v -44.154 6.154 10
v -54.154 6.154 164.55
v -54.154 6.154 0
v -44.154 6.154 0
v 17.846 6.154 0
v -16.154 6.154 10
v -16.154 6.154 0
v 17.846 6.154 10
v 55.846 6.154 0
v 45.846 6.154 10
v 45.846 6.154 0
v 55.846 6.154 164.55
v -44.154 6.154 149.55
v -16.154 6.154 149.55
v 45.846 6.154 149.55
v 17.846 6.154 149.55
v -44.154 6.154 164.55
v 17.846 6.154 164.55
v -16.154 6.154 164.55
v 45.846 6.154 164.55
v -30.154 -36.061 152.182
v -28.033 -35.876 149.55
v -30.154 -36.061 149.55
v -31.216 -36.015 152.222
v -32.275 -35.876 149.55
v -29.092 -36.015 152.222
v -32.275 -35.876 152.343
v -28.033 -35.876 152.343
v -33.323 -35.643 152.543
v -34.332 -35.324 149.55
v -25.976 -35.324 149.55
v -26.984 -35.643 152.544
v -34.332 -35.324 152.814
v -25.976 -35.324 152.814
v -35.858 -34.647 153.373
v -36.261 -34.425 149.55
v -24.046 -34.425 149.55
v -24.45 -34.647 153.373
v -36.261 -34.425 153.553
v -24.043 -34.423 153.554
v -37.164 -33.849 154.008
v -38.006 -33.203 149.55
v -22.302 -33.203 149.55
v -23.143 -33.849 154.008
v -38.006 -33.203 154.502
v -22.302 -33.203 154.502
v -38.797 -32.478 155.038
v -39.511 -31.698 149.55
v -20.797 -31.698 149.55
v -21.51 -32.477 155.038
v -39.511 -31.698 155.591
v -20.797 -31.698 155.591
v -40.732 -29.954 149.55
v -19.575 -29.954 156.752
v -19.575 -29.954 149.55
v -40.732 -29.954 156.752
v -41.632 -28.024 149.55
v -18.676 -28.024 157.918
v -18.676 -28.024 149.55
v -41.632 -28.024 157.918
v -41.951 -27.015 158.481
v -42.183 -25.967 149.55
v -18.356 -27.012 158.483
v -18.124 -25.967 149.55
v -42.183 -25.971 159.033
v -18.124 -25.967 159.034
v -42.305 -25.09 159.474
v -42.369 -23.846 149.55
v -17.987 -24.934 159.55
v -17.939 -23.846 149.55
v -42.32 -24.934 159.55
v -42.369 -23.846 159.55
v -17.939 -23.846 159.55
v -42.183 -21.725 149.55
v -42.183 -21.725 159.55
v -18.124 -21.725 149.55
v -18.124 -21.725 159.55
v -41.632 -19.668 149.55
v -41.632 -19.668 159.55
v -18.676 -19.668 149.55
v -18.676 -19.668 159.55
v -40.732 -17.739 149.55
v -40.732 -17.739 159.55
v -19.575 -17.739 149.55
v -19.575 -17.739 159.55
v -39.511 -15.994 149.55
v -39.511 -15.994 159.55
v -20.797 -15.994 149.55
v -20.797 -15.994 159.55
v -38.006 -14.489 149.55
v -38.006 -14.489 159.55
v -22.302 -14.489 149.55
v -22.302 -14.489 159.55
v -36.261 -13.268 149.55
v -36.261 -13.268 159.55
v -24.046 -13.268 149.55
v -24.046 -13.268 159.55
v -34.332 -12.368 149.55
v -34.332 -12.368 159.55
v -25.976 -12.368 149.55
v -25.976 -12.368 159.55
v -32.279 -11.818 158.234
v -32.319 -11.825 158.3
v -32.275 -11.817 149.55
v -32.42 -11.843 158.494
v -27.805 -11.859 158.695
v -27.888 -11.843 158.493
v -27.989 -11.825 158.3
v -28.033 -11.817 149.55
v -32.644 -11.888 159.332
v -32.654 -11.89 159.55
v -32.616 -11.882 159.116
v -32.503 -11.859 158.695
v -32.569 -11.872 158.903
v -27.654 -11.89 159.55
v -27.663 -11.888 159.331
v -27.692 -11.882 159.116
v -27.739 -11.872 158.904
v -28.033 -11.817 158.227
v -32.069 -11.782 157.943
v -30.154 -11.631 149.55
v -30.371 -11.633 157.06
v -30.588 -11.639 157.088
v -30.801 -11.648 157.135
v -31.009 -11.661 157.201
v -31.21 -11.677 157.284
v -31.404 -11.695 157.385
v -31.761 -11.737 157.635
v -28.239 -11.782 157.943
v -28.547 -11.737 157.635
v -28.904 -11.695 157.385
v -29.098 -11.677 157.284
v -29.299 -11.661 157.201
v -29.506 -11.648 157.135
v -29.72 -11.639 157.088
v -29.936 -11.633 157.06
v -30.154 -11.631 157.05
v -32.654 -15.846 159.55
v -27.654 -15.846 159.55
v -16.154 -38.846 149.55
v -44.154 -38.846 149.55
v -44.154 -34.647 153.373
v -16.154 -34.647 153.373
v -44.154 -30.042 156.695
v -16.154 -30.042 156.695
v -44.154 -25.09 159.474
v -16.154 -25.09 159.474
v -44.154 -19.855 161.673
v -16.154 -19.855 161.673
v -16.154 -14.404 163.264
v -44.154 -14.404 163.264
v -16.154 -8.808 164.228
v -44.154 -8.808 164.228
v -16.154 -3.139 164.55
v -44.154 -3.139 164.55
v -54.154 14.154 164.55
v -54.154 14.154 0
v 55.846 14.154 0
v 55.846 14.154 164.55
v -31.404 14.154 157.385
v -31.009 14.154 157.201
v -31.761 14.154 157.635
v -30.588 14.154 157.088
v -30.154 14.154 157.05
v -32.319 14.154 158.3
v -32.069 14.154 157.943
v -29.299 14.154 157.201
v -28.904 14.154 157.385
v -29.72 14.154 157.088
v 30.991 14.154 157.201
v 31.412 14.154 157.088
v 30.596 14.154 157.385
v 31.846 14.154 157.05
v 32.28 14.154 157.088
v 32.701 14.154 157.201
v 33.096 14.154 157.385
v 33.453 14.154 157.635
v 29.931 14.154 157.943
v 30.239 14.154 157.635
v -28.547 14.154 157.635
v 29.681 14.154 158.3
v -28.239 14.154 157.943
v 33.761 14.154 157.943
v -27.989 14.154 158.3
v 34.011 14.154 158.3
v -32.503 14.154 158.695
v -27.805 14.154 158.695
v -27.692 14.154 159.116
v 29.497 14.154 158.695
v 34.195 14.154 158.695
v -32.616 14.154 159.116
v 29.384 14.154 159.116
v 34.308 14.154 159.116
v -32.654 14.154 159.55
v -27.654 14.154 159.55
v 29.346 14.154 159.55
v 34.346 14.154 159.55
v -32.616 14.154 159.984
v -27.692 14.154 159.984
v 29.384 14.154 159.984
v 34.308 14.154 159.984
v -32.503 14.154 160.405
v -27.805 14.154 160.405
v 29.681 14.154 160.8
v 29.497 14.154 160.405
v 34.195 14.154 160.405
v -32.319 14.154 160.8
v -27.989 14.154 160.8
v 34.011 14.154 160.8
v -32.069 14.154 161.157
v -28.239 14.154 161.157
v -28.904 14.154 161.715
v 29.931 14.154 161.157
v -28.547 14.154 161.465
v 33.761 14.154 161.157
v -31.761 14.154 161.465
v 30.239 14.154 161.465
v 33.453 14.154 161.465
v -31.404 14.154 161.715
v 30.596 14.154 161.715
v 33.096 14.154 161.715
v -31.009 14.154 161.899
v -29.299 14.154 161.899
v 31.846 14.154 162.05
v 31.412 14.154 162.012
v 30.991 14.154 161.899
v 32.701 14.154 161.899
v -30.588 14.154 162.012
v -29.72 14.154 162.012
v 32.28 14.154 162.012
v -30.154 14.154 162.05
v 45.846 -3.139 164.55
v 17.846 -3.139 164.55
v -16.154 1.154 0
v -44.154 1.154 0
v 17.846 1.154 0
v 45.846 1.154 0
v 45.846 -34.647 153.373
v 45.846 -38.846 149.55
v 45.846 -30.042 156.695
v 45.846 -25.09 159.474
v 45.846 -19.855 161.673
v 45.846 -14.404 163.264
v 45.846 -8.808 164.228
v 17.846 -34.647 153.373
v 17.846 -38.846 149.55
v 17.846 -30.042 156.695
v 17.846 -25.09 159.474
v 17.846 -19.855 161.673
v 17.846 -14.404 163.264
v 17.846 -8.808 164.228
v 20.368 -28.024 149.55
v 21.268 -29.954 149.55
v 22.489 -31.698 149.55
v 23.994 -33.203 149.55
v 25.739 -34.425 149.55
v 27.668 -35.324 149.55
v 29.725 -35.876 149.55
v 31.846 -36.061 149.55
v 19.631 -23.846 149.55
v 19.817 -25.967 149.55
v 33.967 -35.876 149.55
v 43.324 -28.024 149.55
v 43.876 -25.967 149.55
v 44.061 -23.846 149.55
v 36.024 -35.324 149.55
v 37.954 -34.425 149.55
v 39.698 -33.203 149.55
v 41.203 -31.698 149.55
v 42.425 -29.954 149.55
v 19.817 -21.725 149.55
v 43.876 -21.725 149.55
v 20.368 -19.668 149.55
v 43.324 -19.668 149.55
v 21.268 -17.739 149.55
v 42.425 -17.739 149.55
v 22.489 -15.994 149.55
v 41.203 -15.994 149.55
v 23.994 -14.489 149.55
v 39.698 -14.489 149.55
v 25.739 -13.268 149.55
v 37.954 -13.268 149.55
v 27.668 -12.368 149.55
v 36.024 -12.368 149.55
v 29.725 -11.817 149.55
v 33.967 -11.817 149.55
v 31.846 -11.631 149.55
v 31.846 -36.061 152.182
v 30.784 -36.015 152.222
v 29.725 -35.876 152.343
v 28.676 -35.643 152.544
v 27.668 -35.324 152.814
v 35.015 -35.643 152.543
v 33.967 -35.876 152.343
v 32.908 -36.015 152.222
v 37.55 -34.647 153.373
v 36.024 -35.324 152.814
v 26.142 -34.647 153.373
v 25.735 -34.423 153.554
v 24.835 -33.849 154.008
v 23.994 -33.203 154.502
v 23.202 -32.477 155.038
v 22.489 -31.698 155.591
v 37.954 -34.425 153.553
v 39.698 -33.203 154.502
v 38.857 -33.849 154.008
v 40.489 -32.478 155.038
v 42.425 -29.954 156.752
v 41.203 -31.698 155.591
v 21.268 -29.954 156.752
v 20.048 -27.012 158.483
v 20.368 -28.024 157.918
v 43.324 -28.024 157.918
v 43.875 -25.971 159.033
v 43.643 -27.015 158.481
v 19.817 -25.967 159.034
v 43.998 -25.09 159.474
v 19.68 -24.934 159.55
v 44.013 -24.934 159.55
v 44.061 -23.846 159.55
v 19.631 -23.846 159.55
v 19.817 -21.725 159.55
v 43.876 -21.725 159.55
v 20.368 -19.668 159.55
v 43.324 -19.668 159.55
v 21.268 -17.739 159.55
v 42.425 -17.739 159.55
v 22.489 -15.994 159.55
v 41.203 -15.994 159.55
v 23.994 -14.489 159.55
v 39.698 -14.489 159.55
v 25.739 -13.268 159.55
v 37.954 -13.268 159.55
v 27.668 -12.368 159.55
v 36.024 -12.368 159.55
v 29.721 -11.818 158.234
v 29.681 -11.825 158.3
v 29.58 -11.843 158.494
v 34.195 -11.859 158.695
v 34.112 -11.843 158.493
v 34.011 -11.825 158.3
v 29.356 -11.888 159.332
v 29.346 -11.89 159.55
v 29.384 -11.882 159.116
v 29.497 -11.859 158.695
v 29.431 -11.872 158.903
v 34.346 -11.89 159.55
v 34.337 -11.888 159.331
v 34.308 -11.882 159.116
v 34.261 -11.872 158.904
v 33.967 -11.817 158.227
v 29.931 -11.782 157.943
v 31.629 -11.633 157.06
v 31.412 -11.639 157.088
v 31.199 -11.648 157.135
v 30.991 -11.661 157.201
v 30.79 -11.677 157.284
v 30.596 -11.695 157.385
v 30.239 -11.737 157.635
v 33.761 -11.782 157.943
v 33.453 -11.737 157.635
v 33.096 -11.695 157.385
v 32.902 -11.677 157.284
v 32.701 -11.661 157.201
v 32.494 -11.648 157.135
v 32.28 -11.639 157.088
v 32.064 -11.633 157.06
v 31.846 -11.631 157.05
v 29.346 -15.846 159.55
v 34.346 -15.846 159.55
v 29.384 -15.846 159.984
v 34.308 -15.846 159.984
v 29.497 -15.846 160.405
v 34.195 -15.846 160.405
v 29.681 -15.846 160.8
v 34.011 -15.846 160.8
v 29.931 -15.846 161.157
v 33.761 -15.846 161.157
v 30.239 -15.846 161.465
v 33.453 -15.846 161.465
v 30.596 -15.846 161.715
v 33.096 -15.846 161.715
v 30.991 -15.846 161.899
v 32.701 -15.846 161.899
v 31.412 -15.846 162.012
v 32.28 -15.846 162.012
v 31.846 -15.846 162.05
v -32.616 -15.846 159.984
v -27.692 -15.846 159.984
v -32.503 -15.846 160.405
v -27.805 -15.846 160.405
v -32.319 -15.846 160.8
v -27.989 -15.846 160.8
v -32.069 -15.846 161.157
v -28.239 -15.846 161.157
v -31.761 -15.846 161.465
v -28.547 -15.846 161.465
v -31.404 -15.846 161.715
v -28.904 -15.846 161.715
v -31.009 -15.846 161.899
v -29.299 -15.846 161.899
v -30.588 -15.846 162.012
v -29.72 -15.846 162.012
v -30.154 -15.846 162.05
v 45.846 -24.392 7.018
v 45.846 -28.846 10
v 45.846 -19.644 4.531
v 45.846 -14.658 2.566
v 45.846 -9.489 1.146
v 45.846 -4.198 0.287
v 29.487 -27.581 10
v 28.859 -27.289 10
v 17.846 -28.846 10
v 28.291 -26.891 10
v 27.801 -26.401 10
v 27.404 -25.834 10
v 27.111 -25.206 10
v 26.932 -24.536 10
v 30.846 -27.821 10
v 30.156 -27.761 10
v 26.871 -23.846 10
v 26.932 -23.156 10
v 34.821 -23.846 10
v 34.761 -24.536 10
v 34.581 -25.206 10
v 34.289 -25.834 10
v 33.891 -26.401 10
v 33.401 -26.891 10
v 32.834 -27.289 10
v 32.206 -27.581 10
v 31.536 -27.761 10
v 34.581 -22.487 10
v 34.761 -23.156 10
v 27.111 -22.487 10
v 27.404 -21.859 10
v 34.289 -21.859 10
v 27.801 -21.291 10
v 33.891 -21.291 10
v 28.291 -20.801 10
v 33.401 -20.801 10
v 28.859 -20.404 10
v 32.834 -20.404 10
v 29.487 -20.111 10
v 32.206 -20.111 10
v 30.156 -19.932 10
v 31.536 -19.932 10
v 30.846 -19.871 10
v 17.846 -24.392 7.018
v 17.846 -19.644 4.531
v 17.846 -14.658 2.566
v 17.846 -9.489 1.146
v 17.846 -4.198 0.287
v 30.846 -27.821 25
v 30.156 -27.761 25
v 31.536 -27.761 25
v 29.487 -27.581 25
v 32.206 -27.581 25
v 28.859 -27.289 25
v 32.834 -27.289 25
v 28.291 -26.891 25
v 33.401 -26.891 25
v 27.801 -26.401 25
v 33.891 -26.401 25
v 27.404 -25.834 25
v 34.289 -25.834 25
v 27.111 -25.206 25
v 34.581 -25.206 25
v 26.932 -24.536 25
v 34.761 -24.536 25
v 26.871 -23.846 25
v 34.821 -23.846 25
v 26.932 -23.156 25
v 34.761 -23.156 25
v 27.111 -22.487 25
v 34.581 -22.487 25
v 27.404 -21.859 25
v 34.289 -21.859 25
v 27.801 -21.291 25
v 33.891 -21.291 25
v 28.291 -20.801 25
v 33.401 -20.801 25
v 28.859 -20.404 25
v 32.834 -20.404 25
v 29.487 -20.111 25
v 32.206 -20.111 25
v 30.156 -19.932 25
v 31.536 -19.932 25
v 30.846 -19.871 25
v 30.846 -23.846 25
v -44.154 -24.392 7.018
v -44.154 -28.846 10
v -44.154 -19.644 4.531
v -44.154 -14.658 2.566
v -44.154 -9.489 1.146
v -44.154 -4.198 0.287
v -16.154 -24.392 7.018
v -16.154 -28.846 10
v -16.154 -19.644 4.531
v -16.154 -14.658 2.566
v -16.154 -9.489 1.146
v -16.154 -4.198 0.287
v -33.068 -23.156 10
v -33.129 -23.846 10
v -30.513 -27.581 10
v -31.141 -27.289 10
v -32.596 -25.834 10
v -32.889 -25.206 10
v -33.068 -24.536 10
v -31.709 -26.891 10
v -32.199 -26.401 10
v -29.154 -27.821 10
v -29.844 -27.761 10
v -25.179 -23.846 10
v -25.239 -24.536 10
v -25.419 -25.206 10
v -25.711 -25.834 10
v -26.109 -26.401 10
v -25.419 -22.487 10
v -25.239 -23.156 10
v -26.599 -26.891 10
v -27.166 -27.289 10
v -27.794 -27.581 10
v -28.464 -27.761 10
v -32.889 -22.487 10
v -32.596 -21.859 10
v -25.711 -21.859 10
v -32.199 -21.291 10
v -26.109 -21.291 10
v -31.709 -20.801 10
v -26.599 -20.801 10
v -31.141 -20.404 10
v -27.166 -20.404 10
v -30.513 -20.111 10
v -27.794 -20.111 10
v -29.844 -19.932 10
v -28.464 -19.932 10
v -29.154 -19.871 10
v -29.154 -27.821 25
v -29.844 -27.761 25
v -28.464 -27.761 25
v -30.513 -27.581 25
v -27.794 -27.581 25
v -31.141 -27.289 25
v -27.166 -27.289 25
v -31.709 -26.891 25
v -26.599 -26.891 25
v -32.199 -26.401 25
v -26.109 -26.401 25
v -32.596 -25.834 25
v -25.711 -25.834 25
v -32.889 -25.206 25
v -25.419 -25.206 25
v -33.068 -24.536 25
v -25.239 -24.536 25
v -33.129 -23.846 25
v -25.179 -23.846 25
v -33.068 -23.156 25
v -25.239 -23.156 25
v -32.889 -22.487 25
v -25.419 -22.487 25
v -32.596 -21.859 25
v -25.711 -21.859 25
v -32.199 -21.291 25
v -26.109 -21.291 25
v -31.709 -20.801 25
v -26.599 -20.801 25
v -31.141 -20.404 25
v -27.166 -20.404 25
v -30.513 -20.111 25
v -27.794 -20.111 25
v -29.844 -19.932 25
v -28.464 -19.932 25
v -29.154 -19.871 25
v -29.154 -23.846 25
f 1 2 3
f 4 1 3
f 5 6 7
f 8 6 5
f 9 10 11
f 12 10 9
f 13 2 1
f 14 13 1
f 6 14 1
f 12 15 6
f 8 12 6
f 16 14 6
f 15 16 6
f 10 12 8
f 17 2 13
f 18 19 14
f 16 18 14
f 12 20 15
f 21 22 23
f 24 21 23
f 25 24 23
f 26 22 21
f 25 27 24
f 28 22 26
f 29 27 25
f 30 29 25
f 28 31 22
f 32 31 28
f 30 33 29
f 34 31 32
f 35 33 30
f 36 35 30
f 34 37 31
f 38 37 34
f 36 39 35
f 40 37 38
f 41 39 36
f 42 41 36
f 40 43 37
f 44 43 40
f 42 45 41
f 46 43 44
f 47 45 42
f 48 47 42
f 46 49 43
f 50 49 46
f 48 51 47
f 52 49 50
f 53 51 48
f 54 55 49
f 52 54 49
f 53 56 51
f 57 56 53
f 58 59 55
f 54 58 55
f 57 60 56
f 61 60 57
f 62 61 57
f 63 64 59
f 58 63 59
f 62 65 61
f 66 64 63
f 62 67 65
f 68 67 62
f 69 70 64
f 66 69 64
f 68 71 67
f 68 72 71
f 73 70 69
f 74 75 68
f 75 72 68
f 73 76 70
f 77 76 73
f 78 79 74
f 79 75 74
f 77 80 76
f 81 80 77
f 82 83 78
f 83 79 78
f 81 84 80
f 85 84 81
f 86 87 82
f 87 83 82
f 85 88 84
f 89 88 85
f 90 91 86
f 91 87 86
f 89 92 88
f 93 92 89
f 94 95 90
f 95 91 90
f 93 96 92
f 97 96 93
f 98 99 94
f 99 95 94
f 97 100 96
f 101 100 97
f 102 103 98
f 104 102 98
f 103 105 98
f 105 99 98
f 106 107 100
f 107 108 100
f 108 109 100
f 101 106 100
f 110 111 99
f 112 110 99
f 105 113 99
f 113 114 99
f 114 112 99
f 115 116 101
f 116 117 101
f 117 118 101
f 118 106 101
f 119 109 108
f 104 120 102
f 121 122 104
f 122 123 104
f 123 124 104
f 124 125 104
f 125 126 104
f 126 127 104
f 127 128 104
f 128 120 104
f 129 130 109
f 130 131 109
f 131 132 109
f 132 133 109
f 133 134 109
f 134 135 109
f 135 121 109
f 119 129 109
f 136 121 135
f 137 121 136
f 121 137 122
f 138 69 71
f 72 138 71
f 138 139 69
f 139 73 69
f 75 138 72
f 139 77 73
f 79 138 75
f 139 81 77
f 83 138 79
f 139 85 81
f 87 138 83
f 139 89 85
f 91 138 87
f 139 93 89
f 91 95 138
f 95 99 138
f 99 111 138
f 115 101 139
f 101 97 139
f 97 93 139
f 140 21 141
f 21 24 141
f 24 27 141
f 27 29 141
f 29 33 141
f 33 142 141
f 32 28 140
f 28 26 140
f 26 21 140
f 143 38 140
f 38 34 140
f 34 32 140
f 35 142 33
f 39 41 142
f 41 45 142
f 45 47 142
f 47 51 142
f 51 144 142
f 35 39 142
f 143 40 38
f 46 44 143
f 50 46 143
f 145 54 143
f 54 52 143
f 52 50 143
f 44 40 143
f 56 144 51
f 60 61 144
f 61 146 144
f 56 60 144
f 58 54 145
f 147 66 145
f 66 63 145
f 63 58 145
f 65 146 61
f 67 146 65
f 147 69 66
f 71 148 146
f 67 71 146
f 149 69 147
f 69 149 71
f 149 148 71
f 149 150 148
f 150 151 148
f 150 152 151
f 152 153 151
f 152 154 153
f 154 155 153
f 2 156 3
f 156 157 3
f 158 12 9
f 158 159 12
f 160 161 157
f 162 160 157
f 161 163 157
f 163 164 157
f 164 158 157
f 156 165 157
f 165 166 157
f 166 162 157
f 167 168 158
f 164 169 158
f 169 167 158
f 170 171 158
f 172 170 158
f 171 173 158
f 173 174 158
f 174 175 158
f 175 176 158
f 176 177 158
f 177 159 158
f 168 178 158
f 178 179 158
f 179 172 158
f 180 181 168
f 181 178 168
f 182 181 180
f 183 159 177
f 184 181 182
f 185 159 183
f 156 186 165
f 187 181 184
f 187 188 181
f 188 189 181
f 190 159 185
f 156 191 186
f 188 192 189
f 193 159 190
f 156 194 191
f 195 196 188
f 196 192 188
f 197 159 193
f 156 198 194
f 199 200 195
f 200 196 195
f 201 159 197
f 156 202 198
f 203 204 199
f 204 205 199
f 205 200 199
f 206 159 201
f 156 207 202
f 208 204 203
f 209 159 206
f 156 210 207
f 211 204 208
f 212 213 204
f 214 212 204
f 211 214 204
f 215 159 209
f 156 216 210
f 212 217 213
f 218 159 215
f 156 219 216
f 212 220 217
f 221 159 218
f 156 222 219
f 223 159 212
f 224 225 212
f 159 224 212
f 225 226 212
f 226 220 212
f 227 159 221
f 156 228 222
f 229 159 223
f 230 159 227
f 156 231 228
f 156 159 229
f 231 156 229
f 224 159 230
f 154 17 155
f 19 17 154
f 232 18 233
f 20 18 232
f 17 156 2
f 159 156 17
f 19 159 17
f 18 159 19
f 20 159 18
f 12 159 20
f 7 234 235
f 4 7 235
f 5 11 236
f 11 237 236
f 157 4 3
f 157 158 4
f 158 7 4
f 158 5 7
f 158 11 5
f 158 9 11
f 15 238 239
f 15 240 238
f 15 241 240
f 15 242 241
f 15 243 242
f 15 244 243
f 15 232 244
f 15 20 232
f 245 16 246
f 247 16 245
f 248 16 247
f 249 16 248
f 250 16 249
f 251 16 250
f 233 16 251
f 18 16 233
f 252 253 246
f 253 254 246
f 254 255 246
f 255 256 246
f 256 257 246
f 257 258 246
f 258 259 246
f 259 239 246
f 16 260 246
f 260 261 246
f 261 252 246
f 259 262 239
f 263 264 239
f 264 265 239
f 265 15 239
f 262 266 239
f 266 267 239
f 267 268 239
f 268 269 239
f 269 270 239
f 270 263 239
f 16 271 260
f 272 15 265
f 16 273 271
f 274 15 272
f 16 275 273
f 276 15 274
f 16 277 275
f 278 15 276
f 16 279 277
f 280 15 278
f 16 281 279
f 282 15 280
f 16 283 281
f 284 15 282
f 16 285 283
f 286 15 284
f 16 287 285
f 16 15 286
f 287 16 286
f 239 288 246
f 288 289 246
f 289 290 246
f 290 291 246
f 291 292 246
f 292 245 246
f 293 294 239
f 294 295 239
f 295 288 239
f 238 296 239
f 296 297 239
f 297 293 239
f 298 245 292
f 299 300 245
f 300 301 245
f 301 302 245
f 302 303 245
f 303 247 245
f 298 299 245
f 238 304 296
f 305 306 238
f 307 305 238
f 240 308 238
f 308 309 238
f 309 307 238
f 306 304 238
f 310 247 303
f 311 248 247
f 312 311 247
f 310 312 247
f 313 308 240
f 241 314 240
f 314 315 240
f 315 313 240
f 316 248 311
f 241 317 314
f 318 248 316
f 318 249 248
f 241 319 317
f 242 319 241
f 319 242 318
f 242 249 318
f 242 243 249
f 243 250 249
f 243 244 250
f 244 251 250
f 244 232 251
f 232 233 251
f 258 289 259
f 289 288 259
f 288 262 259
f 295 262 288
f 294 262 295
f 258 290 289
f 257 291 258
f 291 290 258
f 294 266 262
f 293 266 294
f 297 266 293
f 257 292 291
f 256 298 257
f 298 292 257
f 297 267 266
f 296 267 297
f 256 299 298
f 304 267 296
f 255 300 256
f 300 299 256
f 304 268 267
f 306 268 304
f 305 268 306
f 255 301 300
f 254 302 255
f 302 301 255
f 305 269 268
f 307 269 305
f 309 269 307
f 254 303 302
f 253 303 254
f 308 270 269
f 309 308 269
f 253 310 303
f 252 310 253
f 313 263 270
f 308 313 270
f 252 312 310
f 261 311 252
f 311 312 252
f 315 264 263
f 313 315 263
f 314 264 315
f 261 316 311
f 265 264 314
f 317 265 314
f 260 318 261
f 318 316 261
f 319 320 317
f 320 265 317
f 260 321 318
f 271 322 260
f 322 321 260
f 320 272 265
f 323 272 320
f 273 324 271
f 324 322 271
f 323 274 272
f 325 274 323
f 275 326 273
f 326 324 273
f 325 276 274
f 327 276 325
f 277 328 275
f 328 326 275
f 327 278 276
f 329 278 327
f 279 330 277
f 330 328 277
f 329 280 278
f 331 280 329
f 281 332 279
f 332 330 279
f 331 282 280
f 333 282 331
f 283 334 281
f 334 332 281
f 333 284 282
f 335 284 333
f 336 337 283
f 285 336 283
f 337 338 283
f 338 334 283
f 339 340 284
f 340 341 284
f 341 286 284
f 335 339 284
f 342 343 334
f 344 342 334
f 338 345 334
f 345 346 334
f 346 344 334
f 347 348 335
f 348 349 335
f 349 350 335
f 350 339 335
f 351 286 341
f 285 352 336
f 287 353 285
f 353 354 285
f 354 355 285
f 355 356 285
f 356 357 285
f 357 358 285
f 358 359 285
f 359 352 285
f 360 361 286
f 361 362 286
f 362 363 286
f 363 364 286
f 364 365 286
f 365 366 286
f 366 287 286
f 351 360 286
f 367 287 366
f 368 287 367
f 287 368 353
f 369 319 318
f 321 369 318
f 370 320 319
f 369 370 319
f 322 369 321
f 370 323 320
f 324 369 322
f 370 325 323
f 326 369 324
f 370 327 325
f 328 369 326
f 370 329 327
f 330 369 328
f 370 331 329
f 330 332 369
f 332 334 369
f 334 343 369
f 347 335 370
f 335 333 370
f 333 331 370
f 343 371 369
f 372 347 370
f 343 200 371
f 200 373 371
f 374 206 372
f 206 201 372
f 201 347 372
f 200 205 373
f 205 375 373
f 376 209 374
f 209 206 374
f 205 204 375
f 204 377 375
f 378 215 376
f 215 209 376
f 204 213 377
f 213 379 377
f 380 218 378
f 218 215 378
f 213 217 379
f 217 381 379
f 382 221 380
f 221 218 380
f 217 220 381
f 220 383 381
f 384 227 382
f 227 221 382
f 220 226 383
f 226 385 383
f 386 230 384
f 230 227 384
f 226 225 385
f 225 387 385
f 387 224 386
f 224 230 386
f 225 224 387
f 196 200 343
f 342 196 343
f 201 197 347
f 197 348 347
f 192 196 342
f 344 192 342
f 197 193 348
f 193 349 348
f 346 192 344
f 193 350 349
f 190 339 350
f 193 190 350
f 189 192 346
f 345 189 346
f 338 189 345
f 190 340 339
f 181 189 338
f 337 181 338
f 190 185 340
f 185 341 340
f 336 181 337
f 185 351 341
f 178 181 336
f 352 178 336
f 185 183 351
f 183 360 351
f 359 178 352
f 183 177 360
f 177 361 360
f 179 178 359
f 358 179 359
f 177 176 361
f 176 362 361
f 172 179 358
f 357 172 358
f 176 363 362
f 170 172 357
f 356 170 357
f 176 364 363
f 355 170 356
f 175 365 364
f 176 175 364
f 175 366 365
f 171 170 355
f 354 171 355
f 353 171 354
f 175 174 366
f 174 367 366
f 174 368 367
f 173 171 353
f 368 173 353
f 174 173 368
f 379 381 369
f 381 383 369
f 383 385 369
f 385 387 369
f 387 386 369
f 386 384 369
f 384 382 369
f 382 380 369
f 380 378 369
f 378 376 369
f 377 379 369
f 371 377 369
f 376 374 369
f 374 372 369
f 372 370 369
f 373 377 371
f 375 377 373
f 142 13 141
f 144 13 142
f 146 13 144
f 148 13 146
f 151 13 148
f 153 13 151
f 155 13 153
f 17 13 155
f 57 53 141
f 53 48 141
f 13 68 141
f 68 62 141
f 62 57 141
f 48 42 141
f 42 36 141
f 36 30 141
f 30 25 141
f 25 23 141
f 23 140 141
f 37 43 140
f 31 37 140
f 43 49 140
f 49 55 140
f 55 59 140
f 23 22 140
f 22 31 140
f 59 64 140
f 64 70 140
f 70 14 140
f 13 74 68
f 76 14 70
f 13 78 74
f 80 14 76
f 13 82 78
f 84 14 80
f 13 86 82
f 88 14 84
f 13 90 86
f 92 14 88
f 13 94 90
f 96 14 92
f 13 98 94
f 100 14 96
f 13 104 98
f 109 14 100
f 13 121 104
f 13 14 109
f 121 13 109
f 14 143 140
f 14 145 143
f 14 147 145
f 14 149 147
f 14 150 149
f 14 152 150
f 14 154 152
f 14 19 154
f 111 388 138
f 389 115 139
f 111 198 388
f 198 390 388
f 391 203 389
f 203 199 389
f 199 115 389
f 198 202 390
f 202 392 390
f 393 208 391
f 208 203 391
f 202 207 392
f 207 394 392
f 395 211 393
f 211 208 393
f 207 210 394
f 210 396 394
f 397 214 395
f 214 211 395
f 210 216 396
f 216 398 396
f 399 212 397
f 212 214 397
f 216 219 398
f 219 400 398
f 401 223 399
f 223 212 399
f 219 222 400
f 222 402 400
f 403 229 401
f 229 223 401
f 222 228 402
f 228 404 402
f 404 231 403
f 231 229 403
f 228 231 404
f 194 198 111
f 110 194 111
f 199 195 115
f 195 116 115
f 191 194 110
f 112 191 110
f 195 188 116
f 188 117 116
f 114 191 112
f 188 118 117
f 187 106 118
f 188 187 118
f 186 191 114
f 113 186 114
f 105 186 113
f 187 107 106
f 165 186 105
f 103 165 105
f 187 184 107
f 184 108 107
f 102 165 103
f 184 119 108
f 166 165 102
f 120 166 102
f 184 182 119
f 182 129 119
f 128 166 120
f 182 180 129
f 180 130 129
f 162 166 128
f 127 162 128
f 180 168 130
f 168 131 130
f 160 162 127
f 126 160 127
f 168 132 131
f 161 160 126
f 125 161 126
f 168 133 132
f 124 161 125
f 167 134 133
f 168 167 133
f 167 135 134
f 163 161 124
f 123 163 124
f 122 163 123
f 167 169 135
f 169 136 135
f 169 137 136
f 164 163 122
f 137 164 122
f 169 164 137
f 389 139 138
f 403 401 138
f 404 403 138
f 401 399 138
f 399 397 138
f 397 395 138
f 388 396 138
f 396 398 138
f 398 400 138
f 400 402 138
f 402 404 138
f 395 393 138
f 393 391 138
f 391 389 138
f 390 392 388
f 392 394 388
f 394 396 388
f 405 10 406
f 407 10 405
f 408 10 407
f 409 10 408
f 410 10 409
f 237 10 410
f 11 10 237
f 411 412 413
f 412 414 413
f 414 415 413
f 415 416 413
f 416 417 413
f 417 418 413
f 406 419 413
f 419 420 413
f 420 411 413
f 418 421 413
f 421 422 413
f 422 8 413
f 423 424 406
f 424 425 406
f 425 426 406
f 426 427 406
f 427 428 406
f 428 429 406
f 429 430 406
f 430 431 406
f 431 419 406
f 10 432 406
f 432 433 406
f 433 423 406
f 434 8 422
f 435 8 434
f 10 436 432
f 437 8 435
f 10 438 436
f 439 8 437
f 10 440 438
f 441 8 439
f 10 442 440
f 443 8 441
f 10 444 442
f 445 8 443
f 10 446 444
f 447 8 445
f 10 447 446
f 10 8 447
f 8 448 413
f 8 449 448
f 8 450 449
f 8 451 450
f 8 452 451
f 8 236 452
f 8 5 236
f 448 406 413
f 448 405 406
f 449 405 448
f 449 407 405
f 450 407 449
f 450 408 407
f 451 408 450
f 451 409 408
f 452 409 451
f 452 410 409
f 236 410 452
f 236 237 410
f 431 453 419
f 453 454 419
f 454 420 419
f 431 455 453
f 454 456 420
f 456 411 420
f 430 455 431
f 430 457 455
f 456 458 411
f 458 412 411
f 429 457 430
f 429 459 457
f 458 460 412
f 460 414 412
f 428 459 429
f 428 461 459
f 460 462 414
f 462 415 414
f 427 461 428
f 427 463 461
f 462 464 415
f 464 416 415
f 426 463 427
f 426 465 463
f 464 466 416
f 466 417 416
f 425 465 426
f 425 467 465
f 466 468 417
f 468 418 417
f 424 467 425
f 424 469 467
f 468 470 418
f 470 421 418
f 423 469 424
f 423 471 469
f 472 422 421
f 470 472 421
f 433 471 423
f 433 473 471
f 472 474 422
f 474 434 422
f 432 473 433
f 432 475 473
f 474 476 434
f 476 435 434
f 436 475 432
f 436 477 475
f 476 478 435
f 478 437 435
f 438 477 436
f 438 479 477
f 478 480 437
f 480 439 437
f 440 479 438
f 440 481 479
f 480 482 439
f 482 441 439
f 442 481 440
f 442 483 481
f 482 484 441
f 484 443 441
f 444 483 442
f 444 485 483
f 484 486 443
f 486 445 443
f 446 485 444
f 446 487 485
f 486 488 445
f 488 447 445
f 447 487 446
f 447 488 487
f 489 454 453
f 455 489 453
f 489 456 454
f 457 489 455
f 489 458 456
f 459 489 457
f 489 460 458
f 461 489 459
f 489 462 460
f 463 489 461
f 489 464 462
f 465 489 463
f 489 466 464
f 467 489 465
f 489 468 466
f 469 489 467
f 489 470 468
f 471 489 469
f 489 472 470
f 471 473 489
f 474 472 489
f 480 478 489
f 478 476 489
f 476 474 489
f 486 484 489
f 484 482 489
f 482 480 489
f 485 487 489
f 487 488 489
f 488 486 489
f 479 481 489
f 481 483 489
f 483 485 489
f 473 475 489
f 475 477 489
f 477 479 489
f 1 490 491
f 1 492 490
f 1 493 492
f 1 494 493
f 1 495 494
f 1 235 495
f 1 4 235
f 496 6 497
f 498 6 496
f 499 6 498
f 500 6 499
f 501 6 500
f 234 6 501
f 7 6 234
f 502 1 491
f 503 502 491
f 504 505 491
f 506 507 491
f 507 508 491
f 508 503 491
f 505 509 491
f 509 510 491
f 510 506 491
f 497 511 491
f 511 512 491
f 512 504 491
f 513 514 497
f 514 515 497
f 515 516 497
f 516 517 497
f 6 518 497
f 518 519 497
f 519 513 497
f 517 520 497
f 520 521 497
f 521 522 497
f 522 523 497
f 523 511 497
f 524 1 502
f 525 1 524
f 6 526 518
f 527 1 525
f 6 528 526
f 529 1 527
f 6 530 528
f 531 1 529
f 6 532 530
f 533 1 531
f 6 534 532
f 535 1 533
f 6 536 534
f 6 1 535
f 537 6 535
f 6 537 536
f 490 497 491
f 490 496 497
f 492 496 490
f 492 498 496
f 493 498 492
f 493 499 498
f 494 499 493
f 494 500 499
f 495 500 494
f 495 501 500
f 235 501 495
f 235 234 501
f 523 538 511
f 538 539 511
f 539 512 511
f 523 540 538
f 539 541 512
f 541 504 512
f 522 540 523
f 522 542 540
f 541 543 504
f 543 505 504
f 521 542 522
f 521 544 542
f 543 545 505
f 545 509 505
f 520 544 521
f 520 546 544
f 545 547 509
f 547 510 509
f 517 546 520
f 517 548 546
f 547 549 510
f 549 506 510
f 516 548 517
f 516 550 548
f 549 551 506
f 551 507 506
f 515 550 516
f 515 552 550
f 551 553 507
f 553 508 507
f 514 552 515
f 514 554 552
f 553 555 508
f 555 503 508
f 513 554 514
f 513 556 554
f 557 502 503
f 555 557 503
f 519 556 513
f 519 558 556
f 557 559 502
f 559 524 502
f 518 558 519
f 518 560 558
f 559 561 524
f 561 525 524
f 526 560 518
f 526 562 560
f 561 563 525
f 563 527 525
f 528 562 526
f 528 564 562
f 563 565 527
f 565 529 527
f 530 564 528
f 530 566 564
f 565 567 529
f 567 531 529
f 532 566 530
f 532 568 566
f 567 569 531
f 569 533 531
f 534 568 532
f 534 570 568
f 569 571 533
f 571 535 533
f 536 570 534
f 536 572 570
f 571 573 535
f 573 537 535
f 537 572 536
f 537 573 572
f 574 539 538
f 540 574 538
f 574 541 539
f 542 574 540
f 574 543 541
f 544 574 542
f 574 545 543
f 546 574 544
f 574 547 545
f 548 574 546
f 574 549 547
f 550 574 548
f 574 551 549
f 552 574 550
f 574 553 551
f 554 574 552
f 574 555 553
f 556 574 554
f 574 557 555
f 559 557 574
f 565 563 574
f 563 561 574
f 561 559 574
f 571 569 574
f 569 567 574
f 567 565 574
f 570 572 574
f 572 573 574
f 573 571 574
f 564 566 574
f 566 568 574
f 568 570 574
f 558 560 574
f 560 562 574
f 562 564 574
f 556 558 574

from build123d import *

# Parameters (mm, degrees)
SKETCH_1_W             = 110
SKETCH_1_H             = 8
EXTRUDE_1_DEPTH        = 164.55
SKETCH_7_W             = 28
SKETCH_7_H             = 15
EXTRUDE_2_DEPTH        = 45
FILLET_1_R             = 50
SKETCH_10_R            = 12.215
CUT_EXTRUDE_3_DEPTH    = 10
SKETCH_11_R            = 2.5
CUT_EXTRUDE_4_DEPTH    = 30
FILLET_1_OF_MIRROR_1_R = 50
SKETCH_13_W            = 28
SKETCH_13_H            = 10
EXTRUDE_3_DEPTH        = 35
FILLET_2_R             = 50
SKETCH_14_R            = 3.975
EXTRUDE_4_DEPTH        = 15
MIRROR_START           = -44.153846154
MIRROR_2_DEPTH         = 28
MIRROR_START_2         = 10
MIRROR_2_2_OUTLINE_R   = 3.975
MIRROR_2_2_DEPTH       = 15


with BuildPart() as part:
    # Эскиз1 → Бобышка-Вытянуть1 (new body)
    with BuildSketch(Plane.XY):
        with Locations((0.846153846, 10.153846154)):
            Rectangle(SKETCH_1_W, SKETCH_1_H)
    extrude(amount=EXTRUDE_1_DEPTH)

    # Эскиз7 → Бобышка-Вытянуть2 (add)
    with BuildSketch(Plane.XZ.offset(-6.153846154)):
        with Locations((31.846153846, 157.05)):
            Rectangle(SKETCH_7_W, SKETCH_7_H)
    extrude_2 = extrude(amount=EXTRUDE_2_DEPTH)

    # Скругление1
    # the kernel refuses this fillet: 50 mm, written as the material it takes off along each edge
    with BuildSketch(Plane(origin=(135.114009203, -38.846153846, 164.55), x_dir=(0, 1, 0), z_dir=(-1, 0, 0))) as fillet_1_piece_1:
        with BuildLine():
            CenterArc((35.707142143, 50), FILLET_1_R, 224.427004001, 45.572995999)
            Line((0, 15), (-0.714142843, 14.3))
            ThreePointArc((-0.714142843, 14.3), (-1, 7.5), (-1, 0))
            Line((-1, 0), (0, -1))
            Line((0, -1), (35.707142143, -1))
            Line((35.707142143, -1), (35.707142143, 0))
        make_face()
    extrude(amount=206.535710714, mode=Mode.SUBTRACT)

    # Эскиз10 → Вырез-Вытянуть3 (cut)
    with BuildSketch(Plane(origin=(0, 0, 149.55), x_dir=(-1, 0, 0), z_dir=(0, 0, -1))):
        with Locations((-31.846153846, -23.846153846)):
            Circle(SKETCH_10_R)
    cut_extrude_3 = extrude(amount=-CUT_EXTRUDE_3_DEPTH, mode=Mode.SUBTRACT)

    # Эскиз11 → Вырез-Вытянуть4 (cut)
    with BuildSketch(Plane(origin=(0, 14.153846154, 0), x_dir=(1, 0, 0), z_dir=(0, 1, 0))):
        with Locations(Location((31.846153846, -159.55, 0), (0, 0, 270))):
            Circle(SKETCH_11_R)
    cut_extrude_4 = extrude(amount=-CUT_EXTRUDE_4_DEPTH, mode=Mode.SUBTRACT)

    # Зеркальное отражение1: Бобышка-Вытянуть2, Вырез-Вытянуть3, Вырез-Вытянуть4 across plane
    add(extrude_2.mirror(Plane.ZY.offset(-0.846153846)))
    add(cut_extrude_3.mirror(Plane.ZY.offset(-0.846153846)), mode=Mode.SUBTRACT)
    add(cut_extrude_4.mirror(Plane.ZY.offset(-0.846153846)), mode=Mode.SUBTRACT)

    # Скругление1 of Зеркальное отражение1
    # the kernel refuses this fillet: 50 mm, written as the material it takes off along each edge
    with BuildSketch(Plane(origin=(-133.421701511, -38.846153846, 164.55), x_dir=(0, 1, 0), z_dir=(1, 0, 0))) as fillet_1_of_mirror_1_piece_1:
        with BuildLine():
            CenterArc((35.707142143, -50), FILLET_1_OF_MIRROR_1_R, 90, 45.572995999)
            Line((0, -15), (-0.714142843, -14.3))
            ThreePointArc((-0.714142843, -14.3), (-1, -7.5), (-1, 0))
            Line((-1, 0), (0, 1))
            Line((0, 1), (35.707142143, 1))
            Line((35.707142143, 1), (35.707142143, 0))
        make_face()
    extrude(amount=206.535710714, mode=Mode.SUBTRACT)

    # Эскиз13 → Бобышка-Вытянуть3 (add)
    with BuildSketch(Plane(origin=(0, 6.153846154, 0), x_dir=(-1, 0, 0), z_dir=(0, -1, 0))):
        with Locations((-31.846153846, -5)):
            Rectangle(SKETCH_13_W, SKETCH_13_H)
    extrude(amount=EXTRUDE_3_DEPTH)

    # Скругление2
    # the kernel refuses this fillet: 50 mm, written as the material it takes off along each edge
    with BuildSketch(Plane(origin=(-57.153846154, -28.846153846, 0), x_dir=(0, 1, 0), z_dir=(1, 0, 0))) as fillet_2_piece_1:
        with BuildLine():
            CenterArc((30, 50), FILLET_2_R, 233.130102354, 36.869897646)
            Line((0, 10), (0, 0))
            Line((0, 0), (30, 0))
        make_face()
    extrude(amount=178, mode=Mode.SUBTRACT)

    # Эскиз14 → Бобышка-Вытянуть4 (add)
    with BuildSketch(Plane.XY.offset(10)):
        with Locations(Location((30.846153846, -23.846153846, 0), (0, 0, 180))):
            Circle(SKETCH_14_R)
    extrude(amount=EXTRUDE_4_DEPTH)

    # Зеркальное отражение2: read off the stored shape, not the designer's step
    # Зеркальное отражение2 outline → Зеркальное отражение2 (add)
    with BuildSketch(Plane.YZ.offset(MIRROR_START)):
        with BuildLine():
            Line((1.153846154, 0), (6.153846154, 0))
            Line((6.153846154, 0), (6.153846154, 10))
            Line((6.153846154, 10), (-28.846153846, 10))
            ThreePointArc((-28.846153846, 10), (-14.657542147, 2.565835097), (1.153846154, 0))
        make_face()
    extrude(amount=MIRROR_2_DEPTH)

    # Mirror 2 2 outline → Mirror 2 2 (add)
    with BuildSketch(Plane.XY.offset(MIRROR_START_2)):
        with Locations((-29.153846154, -23.846153846)):
            Circle(MIRROR_2_2_OUTLINE_R)
    extrude(amount=MIRROR_2_2_DEPTH)


solid = part.part
